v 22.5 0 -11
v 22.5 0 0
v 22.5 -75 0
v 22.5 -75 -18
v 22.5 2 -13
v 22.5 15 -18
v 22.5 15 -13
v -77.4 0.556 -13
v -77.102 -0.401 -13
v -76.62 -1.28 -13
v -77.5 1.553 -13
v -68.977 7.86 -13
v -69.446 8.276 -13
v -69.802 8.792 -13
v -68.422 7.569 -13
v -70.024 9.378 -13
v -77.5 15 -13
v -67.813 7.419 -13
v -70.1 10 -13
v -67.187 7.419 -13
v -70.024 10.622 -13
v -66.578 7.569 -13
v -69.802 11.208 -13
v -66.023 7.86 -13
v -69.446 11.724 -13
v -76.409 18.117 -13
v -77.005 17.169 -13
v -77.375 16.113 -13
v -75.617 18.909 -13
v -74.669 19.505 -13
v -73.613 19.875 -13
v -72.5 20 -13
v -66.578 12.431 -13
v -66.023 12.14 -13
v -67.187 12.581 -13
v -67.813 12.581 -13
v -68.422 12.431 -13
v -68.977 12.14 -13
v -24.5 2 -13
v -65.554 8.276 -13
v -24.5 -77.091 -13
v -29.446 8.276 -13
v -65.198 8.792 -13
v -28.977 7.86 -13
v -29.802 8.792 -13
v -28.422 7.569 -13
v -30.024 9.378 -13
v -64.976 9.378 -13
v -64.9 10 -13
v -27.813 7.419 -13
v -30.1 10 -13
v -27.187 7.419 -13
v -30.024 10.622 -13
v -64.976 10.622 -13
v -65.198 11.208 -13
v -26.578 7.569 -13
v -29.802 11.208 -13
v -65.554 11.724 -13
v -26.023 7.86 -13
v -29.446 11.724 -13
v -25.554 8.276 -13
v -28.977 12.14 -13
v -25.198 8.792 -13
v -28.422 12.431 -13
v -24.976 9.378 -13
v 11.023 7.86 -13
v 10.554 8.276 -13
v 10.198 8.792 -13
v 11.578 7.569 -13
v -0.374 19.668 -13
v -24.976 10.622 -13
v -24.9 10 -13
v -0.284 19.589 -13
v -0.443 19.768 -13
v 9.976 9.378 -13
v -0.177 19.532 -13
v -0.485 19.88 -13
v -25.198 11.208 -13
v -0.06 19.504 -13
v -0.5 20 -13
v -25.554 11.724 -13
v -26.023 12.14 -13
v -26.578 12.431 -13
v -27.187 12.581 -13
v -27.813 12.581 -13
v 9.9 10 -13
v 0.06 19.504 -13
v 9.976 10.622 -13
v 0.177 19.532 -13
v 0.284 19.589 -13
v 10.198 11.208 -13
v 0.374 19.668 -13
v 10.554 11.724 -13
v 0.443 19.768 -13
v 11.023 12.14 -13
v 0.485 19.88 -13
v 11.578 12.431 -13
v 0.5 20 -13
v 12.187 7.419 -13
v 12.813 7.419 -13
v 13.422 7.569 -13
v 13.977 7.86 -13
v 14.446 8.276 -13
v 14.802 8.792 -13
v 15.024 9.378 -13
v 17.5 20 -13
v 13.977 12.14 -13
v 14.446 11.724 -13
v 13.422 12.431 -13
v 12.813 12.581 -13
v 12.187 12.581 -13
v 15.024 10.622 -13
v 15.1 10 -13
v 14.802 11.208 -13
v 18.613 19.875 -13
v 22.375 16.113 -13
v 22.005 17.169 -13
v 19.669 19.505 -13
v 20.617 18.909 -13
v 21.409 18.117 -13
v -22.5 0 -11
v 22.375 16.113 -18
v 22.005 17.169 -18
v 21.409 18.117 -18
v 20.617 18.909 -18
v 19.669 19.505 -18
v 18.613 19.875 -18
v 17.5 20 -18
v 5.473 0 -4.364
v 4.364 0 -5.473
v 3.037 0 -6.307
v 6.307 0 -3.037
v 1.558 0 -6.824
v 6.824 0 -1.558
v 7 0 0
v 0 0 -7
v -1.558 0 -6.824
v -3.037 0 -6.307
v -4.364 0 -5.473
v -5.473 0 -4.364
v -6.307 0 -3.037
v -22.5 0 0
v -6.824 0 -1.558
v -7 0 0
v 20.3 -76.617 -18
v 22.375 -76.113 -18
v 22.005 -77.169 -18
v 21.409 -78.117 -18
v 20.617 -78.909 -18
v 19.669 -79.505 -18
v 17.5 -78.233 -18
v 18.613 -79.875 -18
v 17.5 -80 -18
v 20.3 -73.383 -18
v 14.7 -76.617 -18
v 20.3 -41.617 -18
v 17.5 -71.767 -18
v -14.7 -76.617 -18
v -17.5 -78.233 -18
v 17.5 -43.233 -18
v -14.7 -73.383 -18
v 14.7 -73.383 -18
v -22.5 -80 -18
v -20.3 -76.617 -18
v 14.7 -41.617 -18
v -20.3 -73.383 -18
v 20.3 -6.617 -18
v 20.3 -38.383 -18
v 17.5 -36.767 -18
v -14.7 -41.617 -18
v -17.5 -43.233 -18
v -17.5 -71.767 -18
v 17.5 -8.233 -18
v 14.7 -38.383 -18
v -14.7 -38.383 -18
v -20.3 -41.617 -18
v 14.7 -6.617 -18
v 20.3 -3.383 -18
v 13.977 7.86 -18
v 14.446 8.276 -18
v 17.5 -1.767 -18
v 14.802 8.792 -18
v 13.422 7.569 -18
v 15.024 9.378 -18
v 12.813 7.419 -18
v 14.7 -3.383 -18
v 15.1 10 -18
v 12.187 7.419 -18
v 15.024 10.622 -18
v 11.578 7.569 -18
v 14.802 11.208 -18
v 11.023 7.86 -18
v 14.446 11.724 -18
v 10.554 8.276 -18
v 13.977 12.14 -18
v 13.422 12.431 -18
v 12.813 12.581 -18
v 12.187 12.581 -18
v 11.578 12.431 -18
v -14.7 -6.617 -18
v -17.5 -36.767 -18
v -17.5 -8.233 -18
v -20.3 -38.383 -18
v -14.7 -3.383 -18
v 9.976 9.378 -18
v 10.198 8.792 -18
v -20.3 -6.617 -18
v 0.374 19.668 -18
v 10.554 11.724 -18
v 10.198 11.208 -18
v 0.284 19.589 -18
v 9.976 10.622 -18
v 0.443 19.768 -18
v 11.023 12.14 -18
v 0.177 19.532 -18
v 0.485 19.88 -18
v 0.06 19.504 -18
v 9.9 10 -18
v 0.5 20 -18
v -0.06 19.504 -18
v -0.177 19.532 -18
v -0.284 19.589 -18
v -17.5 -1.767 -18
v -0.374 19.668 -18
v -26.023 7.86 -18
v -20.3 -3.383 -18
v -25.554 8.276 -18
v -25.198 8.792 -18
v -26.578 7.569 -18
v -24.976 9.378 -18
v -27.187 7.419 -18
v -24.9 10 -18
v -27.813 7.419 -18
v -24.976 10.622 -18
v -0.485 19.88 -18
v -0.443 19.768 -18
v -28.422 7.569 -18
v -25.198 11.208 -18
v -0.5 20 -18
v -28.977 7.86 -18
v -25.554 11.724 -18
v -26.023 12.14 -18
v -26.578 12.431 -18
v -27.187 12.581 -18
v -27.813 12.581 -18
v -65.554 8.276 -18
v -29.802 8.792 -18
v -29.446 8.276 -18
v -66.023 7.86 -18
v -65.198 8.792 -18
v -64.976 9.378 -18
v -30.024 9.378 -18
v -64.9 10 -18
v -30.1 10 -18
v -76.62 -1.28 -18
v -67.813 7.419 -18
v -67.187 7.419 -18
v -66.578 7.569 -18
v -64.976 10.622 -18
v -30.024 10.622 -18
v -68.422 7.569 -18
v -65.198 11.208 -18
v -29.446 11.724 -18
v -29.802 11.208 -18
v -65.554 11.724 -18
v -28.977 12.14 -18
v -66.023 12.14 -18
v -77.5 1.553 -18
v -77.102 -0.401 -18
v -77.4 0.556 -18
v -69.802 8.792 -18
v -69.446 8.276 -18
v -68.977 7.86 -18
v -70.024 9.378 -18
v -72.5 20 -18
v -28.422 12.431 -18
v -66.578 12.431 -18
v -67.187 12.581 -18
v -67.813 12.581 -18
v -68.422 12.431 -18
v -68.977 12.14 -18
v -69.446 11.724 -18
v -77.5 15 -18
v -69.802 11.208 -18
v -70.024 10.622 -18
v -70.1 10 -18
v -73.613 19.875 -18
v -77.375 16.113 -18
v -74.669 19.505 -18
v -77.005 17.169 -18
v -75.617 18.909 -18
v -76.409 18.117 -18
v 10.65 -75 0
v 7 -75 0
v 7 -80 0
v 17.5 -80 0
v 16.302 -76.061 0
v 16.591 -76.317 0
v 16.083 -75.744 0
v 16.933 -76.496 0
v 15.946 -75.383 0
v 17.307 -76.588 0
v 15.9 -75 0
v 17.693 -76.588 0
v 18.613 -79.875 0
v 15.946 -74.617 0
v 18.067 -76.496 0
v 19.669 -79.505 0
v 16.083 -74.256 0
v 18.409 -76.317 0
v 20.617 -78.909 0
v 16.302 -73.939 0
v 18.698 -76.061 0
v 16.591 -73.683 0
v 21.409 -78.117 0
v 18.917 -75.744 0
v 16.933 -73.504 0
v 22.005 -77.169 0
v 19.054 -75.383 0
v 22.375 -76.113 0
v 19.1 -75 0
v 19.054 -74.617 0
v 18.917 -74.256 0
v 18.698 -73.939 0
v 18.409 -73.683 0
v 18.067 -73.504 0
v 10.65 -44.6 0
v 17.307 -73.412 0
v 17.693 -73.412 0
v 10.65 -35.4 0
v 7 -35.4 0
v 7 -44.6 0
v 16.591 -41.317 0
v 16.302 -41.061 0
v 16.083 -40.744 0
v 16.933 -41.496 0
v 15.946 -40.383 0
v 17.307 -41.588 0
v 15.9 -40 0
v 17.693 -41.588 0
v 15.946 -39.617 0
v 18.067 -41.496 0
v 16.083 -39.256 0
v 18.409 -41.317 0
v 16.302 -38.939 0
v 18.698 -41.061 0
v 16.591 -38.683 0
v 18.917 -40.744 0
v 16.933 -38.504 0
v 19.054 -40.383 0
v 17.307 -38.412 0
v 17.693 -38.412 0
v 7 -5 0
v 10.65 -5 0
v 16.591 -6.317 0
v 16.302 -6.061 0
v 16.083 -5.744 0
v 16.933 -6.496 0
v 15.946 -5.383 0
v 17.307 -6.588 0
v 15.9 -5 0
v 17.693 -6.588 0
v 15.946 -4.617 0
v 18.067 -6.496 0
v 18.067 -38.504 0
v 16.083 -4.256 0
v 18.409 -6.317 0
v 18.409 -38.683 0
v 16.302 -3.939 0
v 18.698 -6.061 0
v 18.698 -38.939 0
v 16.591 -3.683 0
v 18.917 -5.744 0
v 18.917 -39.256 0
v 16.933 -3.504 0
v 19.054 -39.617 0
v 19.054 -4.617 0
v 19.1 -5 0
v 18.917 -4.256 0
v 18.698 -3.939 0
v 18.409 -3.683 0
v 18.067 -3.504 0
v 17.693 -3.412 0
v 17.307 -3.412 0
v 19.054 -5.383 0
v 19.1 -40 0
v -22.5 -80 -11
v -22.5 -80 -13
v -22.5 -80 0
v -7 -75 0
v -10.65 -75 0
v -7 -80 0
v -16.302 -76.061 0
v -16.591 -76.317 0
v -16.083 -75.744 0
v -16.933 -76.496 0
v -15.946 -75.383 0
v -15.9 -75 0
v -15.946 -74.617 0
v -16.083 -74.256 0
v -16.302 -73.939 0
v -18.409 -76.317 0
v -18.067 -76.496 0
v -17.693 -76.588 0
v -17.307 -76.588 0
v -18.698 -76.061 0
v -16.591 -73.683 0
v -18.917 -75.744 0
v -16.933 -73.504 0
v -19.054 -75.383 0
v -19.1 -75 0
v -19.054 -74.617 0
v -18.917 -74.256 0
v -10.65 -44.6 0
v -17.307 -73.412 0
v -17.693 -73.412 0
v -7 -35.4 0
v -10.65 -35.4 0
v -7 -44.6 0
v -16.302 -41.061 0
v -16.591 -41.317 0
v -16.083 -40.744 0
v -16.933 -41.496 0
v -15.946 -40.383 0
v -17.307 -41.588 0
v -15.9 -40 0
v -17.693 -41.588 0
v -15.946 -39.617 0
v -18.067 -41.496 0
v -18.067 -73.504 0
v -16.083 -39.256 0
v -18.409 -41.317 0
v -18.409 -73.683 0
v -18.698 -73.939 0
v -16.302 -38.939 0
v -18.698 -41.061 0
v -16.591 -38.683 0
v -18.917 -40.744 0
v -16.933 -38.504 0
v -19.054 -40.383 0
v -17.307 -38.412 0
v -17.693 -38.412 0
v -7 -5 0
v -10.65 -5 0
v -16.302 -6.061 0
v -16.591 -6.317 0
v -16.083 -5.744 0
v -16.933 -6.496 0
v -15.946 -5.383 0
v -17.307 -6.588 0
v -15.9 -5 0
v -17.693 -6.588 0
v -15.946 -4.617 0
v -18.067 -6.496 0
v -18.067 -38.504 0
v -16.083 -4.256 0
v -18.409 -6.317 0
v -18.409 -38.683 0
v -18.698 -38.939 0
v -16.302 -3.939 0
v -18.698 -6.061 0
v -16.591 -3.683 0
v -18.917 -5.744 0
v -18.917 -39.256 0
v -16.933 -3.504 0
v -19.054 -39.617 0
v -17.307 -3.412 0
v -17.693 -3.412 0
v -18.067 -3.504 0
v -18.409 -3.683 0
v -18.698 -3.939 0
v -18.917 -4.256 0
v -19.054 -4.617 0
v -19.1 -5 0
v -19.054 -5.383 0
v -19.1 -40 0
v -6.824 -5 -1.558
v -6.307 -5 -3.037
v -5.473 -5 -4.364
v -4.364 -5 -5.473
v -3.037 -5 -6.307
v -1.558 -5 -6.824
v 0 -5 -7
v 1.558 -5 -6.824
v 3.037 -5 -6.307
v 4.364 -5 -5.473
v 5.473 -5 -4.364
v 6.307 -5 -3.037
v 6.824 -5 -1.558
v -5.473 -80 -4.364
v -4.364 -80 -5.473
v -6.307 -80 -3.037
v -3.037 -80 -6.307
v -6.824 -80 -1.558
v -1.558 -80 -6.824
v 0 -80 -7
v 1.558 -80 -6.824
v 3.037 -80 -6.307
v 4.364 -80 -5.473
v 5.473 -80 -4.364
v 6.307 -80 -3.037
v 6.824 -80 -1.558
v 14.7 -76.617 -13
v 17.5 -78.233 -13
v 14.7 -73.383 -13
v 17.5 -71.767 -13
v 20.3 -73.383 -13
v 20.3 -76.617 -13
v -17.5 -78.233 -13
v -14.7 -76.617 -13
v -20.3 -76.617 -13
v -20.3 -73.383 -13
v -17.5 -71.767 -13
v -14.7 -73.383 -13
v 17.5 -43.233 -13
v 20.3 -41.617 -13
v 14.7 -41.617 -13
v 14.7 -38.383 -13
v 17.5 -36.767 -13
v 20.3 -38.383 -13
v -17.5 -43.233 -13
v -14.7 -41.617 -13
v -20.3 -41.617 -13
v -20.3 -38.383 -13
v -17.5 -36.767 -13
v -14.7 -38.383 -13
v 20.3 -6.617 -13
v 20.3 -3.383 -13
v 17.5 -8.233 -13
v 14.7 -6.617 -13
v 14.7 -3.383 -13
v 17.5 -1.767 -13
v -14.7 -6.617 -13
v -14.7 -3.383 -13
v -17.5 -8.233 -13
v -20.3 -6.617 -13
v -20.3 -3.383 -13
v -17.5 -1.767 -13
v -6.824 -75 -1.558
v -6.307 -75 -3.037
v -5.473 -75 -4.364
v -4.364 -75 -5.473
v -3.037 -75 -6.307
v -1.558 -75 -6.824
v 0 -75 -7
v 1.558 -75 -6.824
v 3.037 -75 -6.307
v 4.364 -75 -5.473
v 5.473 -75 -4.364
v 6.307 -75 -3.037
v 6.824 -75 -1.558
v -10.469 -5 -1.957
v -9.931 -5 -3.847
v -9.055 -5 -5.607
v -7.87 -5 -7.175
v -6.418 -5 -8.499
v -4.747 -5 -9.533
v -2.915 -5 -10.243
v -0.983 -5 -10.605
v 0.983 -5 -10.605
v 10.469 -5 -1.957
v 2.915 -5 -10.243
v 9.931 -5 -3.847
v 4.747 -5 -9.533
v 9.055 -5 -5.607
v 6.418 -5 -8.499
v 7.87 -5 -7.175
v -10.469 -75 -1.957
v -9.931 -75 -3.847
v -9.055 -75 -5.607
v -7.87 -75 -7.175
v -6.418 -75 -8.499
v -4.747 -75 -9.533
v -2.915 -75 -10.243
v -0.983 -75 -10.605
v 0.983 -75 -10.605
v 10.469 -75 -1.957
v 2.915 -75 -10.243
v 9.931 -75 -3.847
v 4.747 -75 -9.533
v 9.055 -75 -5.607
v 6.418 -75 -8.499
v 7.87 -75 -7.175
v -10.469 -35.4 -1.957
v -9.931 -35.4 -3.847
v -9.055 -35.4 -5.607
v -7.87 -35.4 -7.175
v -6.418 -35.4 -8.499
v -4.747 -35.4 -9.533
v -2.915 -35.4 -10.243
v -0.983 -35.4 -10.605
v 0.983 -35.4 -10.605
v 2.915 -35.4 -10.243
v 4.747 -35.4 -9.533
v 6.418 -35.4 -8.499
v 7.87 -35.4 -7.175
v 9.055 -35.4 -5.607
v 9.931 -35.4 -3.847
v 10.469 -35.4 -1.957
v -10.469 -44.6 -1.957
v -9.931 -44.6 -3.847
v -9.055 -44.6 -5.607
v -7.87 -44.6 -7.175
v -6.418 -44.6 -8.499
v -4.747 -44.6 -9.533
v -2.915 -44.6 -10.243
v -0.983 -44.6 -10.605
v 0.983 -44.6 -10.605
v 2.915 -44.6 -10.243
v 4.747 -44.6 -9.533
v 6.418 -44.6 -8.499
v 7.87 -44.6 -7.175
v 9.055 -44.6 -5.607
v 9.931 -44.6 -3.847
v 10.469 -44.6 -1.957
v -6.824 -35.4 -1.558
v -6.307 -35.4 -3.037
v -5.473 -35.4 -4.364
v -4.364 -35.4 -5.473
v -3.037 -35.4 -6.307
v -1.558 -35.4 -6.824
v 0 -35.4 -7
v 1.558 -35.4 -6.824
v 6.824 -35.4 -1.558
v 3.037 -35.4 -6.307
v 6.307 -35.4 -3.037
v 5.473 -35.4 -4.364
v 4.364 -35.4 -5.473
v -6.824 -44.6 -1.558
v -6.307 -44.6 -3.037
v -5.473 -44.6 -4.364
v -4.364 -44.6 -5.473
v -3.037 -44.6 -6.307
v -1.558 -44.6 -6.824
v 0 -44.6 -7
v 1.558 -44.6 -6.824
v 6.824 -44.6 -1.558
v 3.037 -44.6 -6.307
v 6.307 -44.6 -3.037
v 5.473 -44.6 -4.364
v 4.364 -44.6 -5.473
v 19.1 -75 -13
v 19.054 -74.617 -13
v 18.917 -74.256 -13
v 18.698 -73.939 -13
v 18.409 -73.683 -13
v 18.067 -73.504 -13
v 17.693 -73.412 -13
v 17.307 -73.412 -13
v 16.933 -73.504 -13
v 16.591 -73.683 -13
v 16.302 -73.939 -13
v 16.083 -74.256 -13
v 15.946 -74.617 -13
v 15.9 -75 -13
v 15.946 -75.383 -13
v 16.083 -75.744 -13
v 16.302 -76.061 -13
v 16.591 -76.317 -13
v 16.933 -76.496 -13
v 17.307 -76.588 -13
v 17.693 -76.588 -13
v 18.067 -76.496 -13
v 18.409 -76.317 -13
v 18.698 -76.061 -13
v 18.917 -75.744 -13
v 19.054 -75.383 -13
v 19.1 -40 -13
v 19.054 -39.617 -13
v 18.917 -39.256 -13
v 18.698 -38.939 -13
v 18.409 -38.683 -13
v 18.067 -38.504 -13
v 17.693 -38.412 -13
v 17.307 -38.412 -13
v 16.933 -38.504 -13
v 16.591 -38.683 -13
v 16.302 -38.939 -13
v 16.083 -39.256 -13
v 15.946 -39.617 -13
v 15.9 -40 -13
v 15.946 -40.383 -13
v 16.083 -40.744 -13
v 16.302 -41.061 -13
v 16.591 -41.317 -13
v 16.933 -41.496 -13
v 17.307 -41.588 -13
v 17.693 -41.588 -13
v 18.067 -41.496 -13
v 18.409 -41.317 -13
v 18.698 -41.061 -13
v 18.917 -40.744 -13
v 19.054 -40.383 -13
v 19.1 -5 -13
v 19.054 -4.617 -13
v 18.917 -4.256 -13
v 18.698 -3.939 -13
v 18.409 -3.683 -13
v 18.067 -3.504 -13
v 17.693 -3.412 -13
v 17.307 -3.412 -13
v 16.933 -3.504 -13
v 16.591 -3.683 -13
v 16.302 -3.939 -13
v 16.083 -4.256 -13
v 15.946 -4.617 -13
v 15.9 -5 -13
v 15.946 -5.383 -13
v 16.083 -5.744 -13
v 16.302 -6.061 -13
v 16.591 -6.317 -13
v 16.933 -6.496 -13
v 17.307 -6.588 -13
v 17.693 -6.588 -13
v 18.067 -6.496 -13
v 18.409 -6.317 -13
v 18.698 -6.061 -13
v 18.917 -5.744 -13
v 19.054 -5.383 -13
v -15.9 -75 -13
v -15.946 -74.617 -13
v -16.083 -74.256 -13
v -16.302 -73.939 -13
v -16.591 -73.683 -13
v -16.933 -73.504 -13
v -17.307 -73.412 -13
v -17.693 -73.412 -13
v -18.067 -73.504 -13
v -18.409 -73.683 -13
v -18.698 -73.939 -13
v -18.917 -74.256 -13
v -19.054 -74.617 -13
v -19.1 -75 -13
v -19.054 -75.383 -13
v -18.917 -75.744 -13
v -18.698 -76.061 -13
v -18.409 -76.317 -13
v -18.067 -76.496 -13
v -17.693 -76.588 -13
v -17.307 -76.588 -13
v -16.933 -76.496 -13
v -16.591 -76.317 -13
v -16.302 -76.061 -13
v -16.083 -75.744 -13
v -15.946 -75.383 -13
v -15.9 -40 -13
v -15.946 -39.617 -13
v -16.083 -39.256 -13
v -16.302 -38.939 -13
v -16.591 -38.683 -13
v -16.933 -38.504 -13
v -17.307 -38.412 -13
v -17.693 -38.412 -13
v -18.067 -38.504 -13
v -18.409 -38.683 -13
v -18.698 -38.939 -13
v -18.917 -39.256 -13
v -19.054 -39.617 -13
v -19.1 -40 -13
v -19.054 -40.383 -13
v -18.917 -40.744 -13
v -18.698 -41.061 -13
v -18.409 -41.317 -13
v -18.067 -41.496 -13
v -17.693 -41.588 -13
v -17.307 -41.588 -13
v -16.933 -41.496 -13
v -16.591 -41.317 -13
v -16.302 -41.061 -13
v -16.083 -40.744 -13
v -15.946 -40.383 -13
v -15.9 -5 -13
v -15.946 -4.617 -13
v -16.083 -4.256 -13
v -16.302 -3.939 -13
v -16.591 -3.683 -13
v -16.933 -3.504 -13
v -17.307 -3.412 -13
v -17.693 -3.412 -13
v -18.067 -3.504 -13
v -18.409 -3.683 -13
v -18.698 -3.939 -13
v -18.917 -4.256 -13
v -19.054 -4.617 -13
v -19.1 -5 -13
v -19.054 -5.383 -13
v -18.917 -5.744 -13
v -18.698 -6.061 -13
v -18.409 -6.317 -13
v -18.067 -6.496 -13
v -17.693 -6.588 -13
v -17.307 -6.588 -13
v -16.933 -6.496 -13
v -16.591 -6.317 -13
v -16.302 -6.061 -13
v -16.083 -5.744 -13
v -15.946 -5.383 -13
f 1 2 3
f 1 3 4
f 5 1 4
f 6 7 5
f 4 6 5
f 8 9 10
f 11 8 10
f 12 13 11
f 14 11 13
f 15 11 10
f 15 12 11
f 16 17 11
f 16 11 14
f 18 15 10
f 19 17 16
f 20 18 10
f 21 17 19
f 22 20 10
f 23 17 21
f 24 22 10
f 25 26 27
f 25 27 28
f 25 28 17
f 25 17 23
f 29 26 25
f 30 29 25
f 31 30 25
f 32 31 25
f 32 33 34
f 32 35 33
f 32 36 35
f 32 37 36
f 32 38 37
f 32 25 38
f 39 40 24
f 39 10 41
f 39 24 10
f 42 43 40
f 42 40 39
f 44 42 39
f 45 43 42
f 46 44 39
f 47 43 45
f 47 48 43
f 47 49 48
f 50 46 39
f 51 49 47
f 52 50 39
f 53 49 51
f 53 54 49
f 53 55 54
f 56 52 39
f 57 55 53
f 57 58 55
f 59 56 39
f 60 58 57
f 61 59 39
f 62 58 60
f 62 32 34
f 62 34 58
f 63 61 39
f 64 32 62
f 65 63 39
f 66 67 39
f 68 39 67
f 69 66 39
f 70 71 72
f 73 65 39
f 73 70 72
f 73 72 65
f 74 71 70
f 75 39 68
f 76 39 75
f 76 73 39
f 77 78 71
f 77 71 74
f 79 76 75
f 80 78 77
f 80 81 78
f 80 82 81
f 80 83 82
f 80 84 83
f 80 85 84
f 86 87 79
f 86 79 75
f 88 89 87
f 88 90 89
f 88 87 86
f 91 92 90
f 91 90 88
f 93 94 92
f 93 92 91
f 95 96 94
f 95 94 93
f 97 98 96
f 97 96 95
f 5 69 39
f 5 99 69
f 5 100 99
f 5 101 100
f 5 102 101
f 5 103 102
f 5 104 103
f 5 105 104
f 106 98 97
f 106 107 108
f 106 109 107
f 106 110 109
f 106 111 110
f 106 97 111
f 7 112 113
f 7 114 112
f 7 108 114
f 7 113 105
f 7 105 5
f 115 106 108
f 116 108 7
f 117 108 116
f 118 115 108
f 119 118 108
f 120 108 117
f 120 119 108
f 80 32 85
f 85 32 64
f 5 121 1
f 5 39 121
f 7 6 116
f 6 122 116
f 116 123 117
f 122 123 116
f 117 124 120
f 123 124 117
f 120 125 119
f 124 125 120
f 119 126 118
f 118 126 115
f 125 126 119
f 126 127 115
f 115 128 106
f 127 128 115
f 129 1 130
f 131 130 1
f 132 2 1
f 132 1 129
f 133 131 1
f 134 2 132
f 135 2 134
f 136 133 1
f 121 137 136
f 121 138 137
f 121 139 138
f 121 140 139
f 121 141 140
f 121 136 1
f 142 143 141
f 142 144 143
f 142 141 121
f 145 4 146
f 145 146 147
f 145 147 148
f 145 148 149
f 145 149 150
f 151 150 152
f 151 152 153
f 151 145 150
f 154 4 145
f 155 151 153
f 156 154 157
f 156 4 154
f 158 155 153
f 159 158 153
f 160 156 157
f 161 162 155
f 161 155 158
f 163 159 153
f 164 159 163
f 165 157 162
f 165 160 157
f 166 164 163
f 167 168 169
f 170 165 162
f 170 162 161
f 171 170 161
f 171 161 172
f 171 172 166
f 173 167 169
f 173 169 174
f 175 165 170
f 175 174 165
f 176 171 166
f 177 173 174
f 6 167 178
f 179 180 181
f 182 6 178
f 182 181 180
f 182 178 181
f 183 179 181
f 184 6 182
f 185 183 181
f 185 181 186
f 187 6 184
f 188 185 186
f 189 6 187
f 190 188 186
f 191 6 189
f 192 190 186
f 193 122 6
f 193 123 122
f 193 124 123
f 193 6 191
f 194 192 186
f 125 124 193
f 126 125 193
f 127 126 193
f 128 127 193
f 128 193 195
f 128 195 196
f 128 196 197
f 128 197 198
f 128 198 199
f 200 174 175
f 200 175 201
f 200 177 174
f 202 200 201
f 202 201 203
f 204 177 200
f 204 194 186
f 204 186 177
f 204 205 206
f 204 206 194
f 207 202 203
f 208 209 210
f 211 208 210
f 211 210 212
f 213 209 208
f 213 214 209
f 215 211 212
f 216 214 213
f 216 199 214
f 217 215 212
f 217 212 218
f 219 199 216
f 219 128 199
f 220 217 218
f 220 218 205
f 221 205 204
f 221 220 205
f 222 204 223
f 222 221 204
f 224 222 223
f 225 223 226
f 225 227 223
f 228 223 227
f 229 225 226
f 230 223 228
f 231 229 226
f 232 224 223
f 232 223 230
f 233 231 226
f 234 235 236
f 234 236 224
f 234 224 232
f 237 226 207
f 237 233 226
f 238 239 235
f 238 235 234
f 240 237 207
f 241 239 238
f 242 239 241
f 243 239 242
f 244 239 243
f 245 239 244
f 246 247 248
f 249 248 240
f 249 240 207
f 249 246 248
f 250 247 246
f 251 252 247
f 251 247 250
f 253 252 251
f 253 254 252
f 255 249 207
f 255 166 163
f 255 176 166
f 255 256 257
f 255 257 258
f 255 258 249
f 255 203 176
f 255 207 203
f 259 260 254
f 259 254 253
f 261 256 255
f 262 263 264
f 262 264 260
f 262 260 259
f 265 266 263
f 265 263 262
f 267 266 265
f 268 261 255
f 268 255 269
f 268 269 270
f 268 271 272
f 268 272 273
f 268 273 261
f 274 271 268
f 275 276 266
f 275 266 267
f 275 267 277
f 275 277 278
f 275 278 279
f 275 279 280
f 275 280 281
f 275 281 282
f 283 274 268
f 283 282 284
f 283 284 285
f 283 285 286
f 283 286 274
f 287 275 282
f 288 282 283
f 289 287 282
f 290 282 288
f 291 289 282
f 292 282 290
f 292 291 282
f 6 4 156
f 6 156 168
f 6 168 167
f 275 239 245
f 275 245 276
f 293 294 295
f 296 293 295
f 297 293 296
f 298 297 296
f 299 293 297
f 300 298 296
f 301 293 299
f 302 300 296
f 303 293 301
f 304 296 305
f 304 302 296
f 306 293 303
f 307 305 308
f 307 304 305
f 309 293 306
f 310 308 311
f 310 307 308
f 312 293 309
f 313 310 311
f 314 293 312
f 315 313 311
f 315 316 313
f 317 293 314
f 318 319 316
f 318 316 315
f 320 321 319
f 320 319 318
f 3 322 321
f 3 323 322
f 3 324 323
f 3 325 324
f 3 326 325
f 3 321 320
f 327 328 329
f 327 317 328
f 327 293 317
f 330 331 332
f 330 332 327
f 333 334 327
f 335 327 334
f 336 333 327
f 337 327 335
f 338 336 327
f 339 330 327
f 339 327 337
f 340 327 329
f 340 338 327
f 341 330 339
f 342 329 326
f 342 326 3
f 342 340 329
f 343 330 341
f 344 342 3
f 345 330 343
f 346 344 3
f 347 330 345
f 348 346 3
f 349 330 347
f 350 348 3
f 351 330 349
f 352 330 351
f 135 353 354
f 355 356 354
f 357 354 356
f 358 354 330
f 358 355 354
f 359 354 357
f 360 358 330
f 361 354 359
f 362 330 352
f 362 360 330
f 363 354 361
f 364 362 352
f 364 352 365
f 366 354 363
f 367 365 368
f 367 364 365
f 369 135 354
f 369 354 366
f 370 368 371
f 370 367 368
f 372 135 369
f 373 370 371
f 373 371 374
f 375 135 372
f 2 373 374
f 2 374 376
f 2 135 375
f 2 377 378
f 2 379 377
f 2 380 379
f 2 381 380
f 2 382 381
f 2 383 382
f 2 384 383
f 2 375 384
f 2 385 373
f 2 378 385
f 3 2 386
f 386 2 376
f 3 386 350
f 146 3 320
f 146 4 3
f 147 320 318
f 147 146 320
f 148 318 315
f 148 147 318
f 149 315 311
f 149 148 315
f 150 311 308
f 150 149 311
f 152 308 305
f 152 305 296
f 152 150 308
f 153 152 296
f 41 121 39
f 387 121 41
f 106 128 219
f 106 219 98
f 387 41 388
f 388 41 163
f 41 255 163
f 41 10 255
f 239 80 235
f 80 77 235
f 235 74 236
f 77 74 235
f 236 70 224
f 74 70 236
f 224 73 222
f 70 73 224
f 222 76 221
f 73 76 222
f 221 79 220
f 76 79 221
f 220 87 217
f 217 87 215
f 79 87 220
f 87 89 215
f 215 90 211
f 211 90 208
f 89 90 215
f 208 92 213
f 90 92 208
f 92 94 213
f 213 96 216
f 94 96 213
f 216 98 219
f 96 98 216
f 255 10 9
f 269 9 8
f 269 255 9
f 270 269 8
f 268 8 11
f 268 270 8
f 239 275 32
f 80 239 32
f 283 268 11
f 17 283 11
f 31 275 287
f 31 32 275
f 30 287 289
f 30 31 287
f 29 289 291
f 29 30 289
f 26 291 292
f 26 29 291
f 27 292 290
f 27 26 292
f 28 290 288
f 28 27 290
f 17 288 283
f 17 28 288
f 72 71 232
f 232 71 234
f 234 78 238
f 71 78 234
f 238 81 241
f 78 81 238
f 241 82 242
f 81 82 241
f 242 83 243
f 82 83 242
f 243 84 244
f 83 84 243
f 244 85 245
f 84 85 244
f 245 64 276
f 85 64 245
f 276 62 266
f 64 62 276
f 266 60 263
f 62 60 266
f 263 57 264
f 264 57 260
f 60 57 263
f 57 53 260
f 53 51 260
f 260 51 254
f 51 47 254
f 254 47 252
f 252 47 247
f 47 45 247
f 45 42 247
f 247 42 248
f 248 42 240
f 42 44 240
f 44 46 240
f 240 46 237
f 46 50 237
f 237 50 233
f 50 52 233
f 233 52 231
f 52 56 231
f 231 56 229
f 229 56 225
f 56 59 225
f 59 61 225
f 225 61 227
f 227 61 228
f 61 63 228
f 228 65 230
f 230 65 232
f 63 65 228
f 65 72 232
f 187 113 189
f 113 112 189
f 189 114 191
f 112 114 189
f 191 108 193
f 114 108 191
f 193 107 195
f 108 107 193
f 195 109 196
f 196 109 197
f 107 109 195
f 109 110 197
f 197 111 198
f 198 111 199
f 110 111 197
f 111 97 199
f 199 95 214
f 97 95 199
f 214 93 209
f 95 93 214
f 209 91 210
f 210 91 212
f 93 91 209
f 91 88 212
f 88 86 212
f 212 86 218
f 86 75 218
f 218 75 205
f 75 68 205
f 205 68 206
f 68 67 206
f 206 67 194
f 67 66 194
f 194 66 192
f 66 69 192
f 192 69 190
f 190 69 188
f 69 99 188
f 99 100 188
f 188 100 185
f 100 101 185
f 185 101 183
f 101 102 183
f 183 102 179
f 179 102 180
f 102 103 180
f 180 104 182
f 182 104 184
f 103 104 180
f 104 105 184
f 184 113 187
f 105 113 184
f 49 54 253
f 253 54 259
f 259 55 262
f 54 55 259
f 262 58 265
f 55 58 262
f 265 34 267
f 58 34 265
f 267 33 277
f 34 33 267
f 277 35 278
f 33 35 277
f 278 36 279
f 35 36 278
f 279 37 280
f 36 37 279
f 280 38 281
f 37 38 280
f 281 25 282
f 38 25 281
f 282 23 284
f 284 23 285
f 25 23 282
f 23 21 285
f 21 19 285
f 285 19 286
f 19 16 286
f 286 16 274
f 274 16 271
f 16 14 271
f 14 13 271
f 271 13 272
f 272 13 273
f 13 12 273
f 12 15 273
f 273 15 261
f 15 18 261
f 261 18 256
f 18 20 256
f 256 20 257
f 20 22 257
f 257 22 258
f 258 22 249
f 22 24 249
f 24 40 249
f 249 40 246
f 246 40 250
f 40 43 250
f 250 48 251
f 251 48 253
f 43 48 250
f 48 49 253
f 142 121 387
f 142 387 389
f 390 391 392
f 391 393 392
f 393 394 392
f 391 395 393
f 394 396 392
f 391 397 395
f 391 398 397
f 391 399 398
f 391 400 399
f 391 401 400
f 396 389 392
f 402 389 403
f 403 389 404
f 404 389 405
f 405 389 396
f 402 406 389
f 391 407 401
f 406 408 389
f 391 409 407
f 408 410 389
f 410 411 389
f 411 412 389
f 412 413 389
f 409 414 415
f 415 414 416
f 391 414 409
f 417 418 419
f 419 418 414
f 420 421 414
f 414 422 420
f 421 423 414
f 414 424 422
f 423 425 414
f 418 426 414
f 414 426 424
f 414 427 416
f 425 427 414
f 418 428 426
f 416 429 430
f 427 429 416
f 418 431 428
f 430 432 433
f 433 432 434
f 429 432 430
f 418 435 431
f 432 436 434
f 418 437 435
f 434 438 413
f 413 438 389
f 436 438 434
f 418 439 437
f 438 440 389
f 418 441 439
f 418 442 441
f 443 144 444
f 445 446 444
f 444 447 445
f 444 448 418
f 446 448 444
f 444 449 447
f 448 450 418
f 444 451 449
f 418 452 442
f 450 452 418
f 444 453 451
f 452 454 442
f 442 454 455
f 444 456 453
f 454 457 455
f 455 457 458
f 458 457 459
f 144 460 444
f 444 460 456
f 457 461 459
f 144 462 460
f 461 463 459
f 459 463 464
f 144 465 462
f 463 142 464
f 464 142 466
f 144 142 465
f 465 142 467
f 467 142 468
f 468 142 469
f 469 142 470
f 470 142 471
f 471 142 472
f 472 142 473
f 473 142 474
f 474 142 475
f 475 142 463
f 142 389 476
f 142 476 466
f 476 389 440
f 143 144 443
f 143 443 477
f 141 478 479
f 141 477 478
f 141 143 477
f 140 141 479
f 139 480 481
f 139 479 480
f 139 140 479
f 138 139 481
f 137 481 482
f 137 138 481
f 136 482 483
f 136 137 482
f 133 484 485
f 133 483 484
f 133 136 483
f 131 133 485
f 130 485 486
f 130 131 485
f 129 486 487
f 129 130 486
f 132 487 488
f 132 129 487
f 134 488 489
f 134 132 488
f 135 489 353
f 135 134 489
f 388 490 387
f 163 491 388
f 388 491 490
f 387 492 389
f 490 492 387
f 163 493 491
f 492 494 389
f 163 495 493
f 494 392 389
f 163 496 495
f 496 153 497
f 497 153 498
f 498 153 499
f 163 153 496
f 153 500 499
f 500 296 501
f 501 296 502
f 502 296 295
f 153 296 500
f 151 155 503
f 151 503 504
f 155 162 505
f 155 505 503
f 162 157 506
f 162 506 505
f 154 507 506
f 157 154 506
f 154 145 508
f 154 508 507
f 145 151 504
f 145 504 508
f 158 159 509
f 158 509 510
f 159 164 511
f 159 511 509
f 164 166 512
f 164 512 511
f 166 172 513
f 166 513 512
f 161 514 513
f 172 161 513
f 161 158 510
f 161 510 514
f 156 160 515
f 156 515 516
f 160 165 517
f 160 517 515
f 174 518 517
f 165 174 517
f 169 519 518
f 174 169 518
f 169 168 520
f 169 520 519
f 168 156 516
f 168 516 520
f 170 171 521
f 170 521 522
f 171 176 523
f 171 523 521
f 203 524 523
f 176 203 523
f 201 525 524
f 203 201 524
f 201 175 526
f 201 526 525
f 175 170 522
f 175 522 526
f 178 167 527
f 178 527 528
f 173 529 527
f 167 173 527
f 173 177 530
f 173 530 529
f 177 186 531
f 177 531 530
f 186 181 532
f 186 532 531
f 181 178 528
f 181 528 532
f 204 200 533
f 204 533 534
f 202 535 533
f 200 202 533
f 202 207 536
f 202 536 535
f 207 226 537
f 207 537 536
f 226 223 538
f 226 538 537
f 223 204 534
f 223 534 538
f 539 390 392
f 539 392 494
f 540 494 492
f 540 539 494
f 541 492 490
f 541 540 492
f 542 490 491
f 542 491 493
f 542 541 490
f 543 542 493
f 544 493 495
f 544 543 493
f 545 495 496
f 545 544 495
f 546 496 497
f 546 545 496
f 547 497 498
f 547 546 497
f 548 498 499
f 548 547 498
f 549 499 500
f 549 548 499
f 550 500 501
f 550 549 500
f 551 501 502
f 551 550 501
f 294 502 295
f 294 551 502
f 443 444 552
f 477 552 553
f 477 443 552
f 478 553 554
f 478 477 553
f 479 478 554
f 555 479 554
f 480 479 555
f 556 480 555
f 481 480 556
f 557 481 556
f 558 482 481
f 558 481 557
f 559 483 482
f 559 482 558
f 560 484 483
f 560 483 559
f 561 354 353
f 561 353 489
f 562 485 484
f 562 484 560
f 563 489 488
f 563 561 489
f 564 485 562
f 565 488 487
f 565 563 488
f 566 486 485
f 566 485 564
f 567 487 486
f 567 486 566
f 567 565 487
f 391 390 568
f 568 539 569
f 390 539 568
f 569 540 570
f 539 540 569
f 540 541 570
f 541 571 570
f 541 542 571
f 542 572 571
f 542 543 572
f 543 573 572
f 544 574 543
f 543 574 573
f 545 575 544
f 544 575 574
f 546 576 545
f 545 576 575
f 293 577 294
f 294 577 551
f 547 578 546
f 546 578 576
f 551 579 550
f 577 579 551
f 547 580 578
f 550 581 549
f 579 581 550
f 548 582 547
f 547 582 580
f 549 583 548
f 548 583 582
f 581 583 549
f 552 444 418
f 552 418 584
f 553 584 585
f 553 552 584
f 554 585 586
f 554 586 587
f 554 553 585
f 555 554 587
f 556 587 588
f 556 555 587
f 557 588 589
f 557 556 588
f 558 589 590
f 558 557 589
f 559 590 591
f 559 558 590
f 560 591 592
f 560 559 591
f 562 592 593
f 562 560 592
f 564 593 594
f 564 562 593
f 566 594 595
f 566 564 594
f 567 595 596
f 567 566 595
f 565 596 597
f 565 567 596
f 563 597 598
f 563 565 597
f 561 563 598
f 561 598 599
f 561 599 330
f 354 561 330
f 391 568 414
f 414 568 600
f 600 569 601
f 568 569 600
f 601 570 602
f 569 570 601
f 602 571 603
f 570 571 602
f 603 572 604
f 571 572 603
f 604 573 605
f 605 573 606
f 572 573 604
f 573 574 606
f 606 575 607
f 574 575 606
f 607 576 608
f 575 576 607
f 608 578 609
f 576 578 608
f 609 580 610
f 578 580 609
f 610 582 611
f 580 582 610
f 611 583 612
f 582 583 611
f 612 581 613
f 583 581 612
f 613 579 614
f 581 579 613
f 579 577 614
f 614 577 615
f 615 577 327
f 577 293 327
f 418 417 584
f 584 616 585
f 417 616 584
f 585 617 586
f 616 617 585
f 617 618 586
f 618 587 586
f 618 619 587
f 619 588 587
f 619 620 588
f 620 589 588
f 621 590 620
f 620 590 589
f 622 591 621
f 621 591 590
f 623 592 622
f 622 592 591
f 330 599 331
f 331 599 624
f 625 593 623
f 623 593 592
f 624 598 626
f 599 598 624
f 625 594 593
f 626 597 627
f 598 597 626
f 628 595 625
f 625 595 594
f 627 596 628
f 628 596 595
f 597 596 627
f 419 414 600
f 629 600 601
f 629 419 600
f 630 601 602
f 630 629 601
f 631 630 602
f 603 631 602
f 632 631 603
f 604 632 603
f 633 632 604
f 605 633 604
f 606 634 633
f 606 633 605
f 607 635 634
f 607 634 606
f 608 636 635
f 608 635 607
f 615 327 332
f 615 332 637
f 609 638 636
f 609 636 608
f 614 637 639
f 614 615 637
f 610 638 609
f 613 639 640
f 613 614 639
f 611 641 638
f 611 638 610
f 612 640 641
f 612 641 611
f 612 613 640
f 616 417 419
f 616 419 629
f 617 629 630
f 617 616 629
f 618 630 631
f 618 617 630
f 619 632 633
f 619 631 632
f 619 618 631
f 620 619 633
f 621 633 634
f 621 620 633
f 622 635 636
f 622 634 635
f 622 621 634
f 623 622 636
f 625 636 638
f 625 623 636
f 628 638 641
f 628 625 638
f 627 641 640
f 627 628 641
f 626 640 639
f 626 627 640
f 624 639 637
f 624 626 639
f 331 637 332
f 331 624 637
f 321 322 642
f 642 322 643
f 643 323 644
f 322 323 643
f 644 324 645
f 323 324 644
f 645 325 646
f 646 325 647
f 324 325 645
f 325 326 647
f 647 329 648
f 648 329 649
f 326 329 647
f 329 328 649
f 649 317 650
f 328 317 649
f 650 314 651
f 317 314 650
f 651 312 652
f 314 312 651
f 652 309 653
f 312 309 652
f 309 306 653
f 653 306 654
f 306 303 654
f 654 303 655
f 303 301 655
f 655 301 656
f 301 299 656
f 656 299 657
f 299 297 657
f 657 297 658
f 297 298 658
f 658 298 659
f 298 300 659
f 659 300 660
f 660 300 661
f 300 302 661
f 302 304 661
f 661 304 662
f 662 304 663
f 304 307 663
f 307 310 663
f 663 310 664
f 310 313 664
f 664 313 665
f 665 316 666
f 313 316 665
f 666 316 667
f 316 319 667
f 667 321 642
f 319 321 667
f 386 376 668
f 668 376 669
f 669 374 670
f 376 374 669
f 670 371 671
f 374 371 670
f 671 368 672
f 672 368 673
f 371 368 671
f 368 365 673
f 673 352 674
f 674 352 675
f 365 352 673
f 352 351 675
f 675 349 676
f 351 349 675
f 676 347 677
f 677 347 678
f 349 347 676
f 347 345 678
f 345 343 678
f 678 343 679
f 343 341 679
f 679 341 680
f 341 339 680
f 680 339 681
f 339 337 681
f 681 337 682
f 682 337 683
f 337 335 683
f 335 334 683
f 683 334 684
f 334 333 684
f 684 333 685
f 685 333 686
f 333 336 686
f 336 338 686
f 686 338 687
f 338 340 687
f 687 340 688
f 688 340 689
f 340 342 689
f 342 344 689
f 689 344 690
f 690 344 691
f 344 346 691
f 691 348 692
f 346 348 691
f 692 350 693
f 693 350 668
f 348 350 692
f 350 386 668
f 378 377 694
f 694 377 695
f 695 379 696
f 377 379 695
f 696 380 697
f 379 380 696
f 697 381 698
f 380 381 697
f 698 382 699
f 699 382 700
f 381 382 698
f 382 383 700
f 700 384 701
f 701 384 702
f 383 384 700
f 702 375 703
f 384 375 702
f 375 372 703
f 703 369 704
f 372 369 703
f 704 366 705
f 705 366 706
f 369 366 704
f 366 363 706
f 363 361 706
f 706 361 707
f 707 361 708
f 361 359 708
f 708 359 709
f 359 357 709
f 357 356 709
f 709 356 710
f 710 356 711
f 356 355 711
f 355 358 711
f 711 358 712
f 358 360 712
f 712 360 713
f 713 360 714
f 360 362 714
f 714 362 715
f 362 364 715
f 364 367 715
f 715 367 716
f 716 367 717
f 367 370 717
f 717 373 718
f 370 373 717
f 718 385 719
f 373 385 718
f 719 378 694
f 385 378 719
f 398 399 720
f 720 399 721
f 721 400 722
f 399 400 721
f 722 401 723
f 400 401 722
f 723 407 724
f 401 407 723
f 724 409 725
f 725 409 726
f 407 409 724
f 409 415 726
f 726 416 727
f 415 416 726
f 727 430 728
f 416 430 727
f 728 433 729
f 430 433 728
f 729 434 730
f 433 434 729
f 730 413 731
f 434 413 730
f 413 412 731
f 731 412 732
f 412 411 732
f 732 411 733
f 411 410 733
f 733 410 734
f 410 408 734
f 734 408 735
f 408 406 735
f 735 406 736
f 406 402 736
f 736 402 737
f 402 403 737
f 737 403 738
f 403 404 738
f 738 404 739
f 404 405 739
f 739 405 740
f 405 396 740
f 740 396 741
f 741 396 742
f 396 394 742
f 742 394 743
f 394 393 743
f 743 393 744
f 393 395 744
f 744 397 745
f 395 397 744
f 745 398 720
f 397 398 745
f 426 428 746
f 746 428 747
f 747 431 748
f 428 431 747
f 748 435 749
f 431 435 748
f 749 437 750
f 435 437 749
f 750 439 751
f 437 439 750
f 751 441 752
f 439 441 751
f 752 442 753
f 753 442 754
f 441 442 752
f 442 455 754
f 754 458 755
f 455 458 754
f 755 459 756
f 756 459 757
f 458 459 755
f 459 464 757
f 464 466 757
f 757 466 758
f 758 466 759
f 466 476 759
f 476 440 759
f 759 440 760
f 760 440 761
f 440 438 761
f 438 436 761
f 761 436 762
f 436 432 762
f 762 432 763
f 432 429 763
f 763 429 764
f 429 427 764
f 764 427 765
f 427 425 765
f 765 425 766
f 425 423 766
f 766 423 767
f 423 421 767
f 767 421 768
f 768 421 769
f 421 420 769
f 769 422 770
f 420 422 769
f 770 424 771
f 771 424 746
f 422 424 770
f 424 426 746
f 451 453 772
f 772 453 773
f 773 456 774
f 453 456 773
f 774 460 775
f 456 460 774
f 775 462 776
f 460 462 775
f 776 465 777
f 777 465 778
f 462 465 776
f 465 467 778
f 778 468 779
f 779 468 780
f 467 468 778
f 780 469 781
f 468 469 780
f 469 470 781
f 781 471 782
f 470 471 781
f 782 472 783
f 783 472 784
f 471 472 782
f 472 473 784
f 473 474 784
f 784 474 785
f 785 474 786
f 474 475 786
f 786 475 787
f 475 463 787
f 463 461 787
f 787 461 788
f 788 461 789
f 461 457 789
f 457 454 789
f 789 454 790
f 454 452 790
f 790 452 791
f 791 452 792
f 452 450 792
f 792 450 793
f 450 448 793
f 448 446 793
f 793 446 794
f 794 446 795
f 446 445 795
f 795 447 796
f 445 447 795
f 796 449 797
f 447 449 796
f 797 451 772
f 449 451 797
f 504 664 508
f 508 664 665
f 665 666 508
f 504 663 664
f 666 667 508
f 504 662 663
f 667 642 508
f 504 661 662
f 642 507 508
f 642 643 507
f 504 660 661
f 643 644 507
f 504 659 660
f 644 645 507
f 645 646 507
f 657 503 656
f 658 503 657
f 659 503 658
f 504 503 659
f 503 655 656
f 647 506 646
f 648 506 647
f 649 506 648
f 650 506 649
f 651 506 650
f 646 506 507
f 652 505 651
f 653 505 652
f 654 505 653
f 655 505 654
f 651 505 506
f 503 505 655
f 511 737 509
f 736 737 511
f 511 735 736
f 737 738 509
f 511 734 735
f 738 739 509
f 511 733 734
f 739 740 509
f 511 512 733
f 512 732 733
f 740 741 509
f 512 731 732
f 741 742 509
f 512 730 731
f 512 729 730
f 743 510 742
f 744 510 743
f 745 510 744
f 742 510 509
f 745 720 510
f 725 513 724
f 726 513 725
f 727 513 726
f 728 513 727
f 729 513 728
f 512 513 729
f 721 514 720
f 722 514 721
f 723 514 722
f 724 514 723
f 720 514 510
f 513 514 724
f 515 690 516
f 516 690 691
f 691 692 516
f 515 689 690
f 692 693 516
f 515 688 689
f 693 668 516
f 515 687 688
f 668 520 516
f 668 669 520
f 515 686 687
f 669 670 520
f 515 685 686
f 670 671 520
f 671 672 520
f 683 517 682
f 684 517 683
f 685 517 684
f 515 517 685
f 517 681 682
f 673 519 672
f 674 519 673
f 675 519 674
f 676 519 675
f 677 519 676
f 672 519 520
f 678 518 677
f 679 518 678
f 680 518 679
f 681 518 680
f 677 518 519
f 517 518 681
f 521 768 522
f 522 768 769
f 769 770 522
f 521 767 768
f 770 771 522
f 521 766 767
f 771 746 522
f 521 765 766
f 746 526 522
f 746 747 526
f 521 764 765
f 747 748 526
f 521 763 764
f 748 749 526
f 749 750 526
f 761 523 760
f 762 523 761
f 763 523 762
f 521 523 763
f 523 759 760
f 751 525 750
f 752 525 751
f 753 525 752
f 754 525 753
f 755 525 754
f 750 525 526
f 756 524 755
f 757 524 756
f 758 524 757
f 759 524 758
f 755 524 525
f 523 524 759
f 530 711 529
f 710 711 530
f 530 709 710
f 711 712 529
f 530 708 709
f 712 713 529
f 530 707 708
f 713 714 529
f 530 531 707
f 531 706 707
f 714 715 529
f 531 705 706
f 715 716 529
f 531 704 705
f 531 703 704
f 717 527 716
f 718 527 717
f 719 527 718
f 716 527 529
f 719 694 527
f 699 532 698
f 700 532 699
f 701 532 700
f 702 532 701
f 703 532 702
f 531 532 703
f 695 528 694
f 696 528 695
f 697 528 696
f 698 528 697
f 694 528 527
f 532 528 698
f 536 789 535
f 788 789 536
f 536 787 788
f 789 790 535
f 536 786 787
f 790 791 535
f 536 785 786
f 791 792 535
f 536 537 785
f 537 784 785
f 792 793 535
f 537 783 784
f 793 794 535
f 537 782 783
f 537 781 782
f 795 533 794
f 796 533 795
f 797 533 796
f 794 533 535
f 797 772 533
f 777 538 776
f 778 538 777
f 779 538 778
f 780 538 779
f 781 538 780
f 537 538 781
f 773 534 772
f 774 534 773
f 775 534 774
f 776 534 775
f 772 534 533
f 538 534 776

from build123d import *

# Parameters (mm, degrees)
PAD_DEPTH       = 80
PAD_DEPTH_BACK  = 20
SKETCH001_R     = 2.6
SKETCH001_R_2   = 1.6
SKETCH001_R_3   = 0.5
POCKET_DEPTH    = 18.001
SKETCH002_W     = 62.404188
SKETCH002_H     = 27.650393
POCKET001_DEPTH = 13
POCKET002_DEPTH = 5
SKETCH004_R     = 10.65
POCKET003_DEPTH = 30.4
SKETCH005_R     = 10.65
POCKET004_DEPTH = 30.4
FILLET_R        = 5
CHAMFER_SIZE    = 2


with BuildPart() as part:
    # Sketch → Pad (new body, two sides)
    with BuildSketch(Plane.XZ) as pad_sk:
        with BuildLine():
            Line((-77.5, -18), (-77.5, -13))
            Line((-77.5, -13), (-22.5, -13))
            Line((-22.5, -13), (-22.5, 0))
            Line((-7, 0), (-22.5, 0))
            ThreePointArc((-7, 0), (0, -7), (7, 0))
            Line((7, 0), (22.5, 0))
            Line((22.5, 0), (22.5, -18))
            Line((22.5, -18), (-77.5, -18))
        make_face()
    extrude(amount=PAD_DEPTH)
    extrude(pad_sk.sketch, amount=-PAD_DEPTH_BACK)

    # Sketch001 → Pocket (cut, through all)
    with BuildSketch(Plane.XY):
        with Locations((-67.5, 10)):
            Circle(SKETCH001_R)
        with Locations((-27.5, 10)):
            Circle(SKETCH001_R)
        with Locations((12.5, 10)):
            Circle(SKETCH001_R)
        with Locations((-17.5, -5)):
            Circle(SKETCH001_R_2)
        with Locations((-17.5, -40)):
            Circle(SKETCH001_R_2)
        with Locations((-17.5, -75)):
            Circle(SKETCH001_R_2)
        with Locations((17.5, -5)):
            Circle(SKETCH001_R_2)
        with Locations((17.5, -40)):
            Circle(SKETCH001_R_2)
        with Locations((17.5, -75)):
            Circle(SKETCH001_R_2)
        with Locations((0, 20)):
            Circle(SKETCH001_R_3)
        Polygon((-77.5, 0), (-77.5, -80), (-22.5, -80), align=None)
    extrude(amount=-POCKET_DEPTH, mode=Mode.SUBTRACT)

    # Sketch002 → Pocket001 (cut)
    with BuildSketch(Plane.XY):
        with Locations((0, 13.825196)):
            Rectangle(SKETCH002_W, SKETCH002_H)
    extrude(amount=-POCKET001_DEPTH, mode=Mode.SUBTRACT)

    # Sketch003 (on DatumPlane) → Pocket002 (cut)
    with BuildSketch(Plane.XY.offset(-18)):
        Polygon((-14.7, -3.383419), (-17.5, -1.766838), (-20.3, -3.383419), (-20.3, -6.616581), (-17.5, -8.233162), (-14.7, -6.616581), align=None)
        Polygon((-14.7, -41.616581), (-14.7, -38.383419), (-17.5, -36.766838), (-20.3, -38.383419), (-20.3, -41.616581), (-17.5, -43.233162), align=None)
        Polygon((-14.7, -76.616581), (-14.7, -73.383419), (-17.5, -71.766838), (-20.3, -73.383419), (-20.3, -76.616581), (-17.5, -78.233162), align=None)
        Polygon((17.5, -78.233162), (20.3, -76.616581), (20.3, -73.383419), (17.5, -71.766838), (14.7, -73.383419), (14.7, -76.616581), align=None)
        Polygon((20.3, -41.616581), (20.3, -38.383419), (17.5, -36.766838), (14.7, -38.383419), (14.7, -41.616581), (17.5, -43.233162), align=None)
        Polygon((20.3, -3.383419), (17.5, -1.766838), (14.7, -3.383419), (14.7, -6.616581), (17.5, -8.233162), (20.3, -6.616581), align=None)
    extrude(amount=POCKET002_DEPTH, mode=Mode.SUBTRACT)

    # Sketch004 (on DatumPlane) → Pocket003 (cut)
    with BuildSketch(Plane.XZ.offset(5)):
        Circle(SKETCH004_R)
    extrude(amount=POCKET003_DEPTH, mode=Mode.SUBTRACT)

    # Sketch005 (on DatumPlane) → Pocket004 (cut)
    with BuildSketch(Plane.XZ.offset(75)):
        Circle(SKETCH005_R)
    extrude(amount=-POCKET004_DEPTH, mode=Mode.SUBTRACT)

    # Fillet
    fillet_edges = [part.edges().sort_by_distance(p)[0] for p in [
        (22.5, 20, -15.5),
        (-77.5, 20, -15.5),
        (-77.5, 0, -15.5),
        (22.5, -80, -9),
    ]]
    fillet(fillet_edges, radius=FILLET_R)

    # Chamfer
    chamfer_edges = [part.edges().sort_by_distance(p)[0] for p in [
        (-22.5, -40, -13),
        (0, 0, -13),
    ]]
    chamfer(chamfer_edges, length=CHAMFER_SIZE)


solid = part.part
